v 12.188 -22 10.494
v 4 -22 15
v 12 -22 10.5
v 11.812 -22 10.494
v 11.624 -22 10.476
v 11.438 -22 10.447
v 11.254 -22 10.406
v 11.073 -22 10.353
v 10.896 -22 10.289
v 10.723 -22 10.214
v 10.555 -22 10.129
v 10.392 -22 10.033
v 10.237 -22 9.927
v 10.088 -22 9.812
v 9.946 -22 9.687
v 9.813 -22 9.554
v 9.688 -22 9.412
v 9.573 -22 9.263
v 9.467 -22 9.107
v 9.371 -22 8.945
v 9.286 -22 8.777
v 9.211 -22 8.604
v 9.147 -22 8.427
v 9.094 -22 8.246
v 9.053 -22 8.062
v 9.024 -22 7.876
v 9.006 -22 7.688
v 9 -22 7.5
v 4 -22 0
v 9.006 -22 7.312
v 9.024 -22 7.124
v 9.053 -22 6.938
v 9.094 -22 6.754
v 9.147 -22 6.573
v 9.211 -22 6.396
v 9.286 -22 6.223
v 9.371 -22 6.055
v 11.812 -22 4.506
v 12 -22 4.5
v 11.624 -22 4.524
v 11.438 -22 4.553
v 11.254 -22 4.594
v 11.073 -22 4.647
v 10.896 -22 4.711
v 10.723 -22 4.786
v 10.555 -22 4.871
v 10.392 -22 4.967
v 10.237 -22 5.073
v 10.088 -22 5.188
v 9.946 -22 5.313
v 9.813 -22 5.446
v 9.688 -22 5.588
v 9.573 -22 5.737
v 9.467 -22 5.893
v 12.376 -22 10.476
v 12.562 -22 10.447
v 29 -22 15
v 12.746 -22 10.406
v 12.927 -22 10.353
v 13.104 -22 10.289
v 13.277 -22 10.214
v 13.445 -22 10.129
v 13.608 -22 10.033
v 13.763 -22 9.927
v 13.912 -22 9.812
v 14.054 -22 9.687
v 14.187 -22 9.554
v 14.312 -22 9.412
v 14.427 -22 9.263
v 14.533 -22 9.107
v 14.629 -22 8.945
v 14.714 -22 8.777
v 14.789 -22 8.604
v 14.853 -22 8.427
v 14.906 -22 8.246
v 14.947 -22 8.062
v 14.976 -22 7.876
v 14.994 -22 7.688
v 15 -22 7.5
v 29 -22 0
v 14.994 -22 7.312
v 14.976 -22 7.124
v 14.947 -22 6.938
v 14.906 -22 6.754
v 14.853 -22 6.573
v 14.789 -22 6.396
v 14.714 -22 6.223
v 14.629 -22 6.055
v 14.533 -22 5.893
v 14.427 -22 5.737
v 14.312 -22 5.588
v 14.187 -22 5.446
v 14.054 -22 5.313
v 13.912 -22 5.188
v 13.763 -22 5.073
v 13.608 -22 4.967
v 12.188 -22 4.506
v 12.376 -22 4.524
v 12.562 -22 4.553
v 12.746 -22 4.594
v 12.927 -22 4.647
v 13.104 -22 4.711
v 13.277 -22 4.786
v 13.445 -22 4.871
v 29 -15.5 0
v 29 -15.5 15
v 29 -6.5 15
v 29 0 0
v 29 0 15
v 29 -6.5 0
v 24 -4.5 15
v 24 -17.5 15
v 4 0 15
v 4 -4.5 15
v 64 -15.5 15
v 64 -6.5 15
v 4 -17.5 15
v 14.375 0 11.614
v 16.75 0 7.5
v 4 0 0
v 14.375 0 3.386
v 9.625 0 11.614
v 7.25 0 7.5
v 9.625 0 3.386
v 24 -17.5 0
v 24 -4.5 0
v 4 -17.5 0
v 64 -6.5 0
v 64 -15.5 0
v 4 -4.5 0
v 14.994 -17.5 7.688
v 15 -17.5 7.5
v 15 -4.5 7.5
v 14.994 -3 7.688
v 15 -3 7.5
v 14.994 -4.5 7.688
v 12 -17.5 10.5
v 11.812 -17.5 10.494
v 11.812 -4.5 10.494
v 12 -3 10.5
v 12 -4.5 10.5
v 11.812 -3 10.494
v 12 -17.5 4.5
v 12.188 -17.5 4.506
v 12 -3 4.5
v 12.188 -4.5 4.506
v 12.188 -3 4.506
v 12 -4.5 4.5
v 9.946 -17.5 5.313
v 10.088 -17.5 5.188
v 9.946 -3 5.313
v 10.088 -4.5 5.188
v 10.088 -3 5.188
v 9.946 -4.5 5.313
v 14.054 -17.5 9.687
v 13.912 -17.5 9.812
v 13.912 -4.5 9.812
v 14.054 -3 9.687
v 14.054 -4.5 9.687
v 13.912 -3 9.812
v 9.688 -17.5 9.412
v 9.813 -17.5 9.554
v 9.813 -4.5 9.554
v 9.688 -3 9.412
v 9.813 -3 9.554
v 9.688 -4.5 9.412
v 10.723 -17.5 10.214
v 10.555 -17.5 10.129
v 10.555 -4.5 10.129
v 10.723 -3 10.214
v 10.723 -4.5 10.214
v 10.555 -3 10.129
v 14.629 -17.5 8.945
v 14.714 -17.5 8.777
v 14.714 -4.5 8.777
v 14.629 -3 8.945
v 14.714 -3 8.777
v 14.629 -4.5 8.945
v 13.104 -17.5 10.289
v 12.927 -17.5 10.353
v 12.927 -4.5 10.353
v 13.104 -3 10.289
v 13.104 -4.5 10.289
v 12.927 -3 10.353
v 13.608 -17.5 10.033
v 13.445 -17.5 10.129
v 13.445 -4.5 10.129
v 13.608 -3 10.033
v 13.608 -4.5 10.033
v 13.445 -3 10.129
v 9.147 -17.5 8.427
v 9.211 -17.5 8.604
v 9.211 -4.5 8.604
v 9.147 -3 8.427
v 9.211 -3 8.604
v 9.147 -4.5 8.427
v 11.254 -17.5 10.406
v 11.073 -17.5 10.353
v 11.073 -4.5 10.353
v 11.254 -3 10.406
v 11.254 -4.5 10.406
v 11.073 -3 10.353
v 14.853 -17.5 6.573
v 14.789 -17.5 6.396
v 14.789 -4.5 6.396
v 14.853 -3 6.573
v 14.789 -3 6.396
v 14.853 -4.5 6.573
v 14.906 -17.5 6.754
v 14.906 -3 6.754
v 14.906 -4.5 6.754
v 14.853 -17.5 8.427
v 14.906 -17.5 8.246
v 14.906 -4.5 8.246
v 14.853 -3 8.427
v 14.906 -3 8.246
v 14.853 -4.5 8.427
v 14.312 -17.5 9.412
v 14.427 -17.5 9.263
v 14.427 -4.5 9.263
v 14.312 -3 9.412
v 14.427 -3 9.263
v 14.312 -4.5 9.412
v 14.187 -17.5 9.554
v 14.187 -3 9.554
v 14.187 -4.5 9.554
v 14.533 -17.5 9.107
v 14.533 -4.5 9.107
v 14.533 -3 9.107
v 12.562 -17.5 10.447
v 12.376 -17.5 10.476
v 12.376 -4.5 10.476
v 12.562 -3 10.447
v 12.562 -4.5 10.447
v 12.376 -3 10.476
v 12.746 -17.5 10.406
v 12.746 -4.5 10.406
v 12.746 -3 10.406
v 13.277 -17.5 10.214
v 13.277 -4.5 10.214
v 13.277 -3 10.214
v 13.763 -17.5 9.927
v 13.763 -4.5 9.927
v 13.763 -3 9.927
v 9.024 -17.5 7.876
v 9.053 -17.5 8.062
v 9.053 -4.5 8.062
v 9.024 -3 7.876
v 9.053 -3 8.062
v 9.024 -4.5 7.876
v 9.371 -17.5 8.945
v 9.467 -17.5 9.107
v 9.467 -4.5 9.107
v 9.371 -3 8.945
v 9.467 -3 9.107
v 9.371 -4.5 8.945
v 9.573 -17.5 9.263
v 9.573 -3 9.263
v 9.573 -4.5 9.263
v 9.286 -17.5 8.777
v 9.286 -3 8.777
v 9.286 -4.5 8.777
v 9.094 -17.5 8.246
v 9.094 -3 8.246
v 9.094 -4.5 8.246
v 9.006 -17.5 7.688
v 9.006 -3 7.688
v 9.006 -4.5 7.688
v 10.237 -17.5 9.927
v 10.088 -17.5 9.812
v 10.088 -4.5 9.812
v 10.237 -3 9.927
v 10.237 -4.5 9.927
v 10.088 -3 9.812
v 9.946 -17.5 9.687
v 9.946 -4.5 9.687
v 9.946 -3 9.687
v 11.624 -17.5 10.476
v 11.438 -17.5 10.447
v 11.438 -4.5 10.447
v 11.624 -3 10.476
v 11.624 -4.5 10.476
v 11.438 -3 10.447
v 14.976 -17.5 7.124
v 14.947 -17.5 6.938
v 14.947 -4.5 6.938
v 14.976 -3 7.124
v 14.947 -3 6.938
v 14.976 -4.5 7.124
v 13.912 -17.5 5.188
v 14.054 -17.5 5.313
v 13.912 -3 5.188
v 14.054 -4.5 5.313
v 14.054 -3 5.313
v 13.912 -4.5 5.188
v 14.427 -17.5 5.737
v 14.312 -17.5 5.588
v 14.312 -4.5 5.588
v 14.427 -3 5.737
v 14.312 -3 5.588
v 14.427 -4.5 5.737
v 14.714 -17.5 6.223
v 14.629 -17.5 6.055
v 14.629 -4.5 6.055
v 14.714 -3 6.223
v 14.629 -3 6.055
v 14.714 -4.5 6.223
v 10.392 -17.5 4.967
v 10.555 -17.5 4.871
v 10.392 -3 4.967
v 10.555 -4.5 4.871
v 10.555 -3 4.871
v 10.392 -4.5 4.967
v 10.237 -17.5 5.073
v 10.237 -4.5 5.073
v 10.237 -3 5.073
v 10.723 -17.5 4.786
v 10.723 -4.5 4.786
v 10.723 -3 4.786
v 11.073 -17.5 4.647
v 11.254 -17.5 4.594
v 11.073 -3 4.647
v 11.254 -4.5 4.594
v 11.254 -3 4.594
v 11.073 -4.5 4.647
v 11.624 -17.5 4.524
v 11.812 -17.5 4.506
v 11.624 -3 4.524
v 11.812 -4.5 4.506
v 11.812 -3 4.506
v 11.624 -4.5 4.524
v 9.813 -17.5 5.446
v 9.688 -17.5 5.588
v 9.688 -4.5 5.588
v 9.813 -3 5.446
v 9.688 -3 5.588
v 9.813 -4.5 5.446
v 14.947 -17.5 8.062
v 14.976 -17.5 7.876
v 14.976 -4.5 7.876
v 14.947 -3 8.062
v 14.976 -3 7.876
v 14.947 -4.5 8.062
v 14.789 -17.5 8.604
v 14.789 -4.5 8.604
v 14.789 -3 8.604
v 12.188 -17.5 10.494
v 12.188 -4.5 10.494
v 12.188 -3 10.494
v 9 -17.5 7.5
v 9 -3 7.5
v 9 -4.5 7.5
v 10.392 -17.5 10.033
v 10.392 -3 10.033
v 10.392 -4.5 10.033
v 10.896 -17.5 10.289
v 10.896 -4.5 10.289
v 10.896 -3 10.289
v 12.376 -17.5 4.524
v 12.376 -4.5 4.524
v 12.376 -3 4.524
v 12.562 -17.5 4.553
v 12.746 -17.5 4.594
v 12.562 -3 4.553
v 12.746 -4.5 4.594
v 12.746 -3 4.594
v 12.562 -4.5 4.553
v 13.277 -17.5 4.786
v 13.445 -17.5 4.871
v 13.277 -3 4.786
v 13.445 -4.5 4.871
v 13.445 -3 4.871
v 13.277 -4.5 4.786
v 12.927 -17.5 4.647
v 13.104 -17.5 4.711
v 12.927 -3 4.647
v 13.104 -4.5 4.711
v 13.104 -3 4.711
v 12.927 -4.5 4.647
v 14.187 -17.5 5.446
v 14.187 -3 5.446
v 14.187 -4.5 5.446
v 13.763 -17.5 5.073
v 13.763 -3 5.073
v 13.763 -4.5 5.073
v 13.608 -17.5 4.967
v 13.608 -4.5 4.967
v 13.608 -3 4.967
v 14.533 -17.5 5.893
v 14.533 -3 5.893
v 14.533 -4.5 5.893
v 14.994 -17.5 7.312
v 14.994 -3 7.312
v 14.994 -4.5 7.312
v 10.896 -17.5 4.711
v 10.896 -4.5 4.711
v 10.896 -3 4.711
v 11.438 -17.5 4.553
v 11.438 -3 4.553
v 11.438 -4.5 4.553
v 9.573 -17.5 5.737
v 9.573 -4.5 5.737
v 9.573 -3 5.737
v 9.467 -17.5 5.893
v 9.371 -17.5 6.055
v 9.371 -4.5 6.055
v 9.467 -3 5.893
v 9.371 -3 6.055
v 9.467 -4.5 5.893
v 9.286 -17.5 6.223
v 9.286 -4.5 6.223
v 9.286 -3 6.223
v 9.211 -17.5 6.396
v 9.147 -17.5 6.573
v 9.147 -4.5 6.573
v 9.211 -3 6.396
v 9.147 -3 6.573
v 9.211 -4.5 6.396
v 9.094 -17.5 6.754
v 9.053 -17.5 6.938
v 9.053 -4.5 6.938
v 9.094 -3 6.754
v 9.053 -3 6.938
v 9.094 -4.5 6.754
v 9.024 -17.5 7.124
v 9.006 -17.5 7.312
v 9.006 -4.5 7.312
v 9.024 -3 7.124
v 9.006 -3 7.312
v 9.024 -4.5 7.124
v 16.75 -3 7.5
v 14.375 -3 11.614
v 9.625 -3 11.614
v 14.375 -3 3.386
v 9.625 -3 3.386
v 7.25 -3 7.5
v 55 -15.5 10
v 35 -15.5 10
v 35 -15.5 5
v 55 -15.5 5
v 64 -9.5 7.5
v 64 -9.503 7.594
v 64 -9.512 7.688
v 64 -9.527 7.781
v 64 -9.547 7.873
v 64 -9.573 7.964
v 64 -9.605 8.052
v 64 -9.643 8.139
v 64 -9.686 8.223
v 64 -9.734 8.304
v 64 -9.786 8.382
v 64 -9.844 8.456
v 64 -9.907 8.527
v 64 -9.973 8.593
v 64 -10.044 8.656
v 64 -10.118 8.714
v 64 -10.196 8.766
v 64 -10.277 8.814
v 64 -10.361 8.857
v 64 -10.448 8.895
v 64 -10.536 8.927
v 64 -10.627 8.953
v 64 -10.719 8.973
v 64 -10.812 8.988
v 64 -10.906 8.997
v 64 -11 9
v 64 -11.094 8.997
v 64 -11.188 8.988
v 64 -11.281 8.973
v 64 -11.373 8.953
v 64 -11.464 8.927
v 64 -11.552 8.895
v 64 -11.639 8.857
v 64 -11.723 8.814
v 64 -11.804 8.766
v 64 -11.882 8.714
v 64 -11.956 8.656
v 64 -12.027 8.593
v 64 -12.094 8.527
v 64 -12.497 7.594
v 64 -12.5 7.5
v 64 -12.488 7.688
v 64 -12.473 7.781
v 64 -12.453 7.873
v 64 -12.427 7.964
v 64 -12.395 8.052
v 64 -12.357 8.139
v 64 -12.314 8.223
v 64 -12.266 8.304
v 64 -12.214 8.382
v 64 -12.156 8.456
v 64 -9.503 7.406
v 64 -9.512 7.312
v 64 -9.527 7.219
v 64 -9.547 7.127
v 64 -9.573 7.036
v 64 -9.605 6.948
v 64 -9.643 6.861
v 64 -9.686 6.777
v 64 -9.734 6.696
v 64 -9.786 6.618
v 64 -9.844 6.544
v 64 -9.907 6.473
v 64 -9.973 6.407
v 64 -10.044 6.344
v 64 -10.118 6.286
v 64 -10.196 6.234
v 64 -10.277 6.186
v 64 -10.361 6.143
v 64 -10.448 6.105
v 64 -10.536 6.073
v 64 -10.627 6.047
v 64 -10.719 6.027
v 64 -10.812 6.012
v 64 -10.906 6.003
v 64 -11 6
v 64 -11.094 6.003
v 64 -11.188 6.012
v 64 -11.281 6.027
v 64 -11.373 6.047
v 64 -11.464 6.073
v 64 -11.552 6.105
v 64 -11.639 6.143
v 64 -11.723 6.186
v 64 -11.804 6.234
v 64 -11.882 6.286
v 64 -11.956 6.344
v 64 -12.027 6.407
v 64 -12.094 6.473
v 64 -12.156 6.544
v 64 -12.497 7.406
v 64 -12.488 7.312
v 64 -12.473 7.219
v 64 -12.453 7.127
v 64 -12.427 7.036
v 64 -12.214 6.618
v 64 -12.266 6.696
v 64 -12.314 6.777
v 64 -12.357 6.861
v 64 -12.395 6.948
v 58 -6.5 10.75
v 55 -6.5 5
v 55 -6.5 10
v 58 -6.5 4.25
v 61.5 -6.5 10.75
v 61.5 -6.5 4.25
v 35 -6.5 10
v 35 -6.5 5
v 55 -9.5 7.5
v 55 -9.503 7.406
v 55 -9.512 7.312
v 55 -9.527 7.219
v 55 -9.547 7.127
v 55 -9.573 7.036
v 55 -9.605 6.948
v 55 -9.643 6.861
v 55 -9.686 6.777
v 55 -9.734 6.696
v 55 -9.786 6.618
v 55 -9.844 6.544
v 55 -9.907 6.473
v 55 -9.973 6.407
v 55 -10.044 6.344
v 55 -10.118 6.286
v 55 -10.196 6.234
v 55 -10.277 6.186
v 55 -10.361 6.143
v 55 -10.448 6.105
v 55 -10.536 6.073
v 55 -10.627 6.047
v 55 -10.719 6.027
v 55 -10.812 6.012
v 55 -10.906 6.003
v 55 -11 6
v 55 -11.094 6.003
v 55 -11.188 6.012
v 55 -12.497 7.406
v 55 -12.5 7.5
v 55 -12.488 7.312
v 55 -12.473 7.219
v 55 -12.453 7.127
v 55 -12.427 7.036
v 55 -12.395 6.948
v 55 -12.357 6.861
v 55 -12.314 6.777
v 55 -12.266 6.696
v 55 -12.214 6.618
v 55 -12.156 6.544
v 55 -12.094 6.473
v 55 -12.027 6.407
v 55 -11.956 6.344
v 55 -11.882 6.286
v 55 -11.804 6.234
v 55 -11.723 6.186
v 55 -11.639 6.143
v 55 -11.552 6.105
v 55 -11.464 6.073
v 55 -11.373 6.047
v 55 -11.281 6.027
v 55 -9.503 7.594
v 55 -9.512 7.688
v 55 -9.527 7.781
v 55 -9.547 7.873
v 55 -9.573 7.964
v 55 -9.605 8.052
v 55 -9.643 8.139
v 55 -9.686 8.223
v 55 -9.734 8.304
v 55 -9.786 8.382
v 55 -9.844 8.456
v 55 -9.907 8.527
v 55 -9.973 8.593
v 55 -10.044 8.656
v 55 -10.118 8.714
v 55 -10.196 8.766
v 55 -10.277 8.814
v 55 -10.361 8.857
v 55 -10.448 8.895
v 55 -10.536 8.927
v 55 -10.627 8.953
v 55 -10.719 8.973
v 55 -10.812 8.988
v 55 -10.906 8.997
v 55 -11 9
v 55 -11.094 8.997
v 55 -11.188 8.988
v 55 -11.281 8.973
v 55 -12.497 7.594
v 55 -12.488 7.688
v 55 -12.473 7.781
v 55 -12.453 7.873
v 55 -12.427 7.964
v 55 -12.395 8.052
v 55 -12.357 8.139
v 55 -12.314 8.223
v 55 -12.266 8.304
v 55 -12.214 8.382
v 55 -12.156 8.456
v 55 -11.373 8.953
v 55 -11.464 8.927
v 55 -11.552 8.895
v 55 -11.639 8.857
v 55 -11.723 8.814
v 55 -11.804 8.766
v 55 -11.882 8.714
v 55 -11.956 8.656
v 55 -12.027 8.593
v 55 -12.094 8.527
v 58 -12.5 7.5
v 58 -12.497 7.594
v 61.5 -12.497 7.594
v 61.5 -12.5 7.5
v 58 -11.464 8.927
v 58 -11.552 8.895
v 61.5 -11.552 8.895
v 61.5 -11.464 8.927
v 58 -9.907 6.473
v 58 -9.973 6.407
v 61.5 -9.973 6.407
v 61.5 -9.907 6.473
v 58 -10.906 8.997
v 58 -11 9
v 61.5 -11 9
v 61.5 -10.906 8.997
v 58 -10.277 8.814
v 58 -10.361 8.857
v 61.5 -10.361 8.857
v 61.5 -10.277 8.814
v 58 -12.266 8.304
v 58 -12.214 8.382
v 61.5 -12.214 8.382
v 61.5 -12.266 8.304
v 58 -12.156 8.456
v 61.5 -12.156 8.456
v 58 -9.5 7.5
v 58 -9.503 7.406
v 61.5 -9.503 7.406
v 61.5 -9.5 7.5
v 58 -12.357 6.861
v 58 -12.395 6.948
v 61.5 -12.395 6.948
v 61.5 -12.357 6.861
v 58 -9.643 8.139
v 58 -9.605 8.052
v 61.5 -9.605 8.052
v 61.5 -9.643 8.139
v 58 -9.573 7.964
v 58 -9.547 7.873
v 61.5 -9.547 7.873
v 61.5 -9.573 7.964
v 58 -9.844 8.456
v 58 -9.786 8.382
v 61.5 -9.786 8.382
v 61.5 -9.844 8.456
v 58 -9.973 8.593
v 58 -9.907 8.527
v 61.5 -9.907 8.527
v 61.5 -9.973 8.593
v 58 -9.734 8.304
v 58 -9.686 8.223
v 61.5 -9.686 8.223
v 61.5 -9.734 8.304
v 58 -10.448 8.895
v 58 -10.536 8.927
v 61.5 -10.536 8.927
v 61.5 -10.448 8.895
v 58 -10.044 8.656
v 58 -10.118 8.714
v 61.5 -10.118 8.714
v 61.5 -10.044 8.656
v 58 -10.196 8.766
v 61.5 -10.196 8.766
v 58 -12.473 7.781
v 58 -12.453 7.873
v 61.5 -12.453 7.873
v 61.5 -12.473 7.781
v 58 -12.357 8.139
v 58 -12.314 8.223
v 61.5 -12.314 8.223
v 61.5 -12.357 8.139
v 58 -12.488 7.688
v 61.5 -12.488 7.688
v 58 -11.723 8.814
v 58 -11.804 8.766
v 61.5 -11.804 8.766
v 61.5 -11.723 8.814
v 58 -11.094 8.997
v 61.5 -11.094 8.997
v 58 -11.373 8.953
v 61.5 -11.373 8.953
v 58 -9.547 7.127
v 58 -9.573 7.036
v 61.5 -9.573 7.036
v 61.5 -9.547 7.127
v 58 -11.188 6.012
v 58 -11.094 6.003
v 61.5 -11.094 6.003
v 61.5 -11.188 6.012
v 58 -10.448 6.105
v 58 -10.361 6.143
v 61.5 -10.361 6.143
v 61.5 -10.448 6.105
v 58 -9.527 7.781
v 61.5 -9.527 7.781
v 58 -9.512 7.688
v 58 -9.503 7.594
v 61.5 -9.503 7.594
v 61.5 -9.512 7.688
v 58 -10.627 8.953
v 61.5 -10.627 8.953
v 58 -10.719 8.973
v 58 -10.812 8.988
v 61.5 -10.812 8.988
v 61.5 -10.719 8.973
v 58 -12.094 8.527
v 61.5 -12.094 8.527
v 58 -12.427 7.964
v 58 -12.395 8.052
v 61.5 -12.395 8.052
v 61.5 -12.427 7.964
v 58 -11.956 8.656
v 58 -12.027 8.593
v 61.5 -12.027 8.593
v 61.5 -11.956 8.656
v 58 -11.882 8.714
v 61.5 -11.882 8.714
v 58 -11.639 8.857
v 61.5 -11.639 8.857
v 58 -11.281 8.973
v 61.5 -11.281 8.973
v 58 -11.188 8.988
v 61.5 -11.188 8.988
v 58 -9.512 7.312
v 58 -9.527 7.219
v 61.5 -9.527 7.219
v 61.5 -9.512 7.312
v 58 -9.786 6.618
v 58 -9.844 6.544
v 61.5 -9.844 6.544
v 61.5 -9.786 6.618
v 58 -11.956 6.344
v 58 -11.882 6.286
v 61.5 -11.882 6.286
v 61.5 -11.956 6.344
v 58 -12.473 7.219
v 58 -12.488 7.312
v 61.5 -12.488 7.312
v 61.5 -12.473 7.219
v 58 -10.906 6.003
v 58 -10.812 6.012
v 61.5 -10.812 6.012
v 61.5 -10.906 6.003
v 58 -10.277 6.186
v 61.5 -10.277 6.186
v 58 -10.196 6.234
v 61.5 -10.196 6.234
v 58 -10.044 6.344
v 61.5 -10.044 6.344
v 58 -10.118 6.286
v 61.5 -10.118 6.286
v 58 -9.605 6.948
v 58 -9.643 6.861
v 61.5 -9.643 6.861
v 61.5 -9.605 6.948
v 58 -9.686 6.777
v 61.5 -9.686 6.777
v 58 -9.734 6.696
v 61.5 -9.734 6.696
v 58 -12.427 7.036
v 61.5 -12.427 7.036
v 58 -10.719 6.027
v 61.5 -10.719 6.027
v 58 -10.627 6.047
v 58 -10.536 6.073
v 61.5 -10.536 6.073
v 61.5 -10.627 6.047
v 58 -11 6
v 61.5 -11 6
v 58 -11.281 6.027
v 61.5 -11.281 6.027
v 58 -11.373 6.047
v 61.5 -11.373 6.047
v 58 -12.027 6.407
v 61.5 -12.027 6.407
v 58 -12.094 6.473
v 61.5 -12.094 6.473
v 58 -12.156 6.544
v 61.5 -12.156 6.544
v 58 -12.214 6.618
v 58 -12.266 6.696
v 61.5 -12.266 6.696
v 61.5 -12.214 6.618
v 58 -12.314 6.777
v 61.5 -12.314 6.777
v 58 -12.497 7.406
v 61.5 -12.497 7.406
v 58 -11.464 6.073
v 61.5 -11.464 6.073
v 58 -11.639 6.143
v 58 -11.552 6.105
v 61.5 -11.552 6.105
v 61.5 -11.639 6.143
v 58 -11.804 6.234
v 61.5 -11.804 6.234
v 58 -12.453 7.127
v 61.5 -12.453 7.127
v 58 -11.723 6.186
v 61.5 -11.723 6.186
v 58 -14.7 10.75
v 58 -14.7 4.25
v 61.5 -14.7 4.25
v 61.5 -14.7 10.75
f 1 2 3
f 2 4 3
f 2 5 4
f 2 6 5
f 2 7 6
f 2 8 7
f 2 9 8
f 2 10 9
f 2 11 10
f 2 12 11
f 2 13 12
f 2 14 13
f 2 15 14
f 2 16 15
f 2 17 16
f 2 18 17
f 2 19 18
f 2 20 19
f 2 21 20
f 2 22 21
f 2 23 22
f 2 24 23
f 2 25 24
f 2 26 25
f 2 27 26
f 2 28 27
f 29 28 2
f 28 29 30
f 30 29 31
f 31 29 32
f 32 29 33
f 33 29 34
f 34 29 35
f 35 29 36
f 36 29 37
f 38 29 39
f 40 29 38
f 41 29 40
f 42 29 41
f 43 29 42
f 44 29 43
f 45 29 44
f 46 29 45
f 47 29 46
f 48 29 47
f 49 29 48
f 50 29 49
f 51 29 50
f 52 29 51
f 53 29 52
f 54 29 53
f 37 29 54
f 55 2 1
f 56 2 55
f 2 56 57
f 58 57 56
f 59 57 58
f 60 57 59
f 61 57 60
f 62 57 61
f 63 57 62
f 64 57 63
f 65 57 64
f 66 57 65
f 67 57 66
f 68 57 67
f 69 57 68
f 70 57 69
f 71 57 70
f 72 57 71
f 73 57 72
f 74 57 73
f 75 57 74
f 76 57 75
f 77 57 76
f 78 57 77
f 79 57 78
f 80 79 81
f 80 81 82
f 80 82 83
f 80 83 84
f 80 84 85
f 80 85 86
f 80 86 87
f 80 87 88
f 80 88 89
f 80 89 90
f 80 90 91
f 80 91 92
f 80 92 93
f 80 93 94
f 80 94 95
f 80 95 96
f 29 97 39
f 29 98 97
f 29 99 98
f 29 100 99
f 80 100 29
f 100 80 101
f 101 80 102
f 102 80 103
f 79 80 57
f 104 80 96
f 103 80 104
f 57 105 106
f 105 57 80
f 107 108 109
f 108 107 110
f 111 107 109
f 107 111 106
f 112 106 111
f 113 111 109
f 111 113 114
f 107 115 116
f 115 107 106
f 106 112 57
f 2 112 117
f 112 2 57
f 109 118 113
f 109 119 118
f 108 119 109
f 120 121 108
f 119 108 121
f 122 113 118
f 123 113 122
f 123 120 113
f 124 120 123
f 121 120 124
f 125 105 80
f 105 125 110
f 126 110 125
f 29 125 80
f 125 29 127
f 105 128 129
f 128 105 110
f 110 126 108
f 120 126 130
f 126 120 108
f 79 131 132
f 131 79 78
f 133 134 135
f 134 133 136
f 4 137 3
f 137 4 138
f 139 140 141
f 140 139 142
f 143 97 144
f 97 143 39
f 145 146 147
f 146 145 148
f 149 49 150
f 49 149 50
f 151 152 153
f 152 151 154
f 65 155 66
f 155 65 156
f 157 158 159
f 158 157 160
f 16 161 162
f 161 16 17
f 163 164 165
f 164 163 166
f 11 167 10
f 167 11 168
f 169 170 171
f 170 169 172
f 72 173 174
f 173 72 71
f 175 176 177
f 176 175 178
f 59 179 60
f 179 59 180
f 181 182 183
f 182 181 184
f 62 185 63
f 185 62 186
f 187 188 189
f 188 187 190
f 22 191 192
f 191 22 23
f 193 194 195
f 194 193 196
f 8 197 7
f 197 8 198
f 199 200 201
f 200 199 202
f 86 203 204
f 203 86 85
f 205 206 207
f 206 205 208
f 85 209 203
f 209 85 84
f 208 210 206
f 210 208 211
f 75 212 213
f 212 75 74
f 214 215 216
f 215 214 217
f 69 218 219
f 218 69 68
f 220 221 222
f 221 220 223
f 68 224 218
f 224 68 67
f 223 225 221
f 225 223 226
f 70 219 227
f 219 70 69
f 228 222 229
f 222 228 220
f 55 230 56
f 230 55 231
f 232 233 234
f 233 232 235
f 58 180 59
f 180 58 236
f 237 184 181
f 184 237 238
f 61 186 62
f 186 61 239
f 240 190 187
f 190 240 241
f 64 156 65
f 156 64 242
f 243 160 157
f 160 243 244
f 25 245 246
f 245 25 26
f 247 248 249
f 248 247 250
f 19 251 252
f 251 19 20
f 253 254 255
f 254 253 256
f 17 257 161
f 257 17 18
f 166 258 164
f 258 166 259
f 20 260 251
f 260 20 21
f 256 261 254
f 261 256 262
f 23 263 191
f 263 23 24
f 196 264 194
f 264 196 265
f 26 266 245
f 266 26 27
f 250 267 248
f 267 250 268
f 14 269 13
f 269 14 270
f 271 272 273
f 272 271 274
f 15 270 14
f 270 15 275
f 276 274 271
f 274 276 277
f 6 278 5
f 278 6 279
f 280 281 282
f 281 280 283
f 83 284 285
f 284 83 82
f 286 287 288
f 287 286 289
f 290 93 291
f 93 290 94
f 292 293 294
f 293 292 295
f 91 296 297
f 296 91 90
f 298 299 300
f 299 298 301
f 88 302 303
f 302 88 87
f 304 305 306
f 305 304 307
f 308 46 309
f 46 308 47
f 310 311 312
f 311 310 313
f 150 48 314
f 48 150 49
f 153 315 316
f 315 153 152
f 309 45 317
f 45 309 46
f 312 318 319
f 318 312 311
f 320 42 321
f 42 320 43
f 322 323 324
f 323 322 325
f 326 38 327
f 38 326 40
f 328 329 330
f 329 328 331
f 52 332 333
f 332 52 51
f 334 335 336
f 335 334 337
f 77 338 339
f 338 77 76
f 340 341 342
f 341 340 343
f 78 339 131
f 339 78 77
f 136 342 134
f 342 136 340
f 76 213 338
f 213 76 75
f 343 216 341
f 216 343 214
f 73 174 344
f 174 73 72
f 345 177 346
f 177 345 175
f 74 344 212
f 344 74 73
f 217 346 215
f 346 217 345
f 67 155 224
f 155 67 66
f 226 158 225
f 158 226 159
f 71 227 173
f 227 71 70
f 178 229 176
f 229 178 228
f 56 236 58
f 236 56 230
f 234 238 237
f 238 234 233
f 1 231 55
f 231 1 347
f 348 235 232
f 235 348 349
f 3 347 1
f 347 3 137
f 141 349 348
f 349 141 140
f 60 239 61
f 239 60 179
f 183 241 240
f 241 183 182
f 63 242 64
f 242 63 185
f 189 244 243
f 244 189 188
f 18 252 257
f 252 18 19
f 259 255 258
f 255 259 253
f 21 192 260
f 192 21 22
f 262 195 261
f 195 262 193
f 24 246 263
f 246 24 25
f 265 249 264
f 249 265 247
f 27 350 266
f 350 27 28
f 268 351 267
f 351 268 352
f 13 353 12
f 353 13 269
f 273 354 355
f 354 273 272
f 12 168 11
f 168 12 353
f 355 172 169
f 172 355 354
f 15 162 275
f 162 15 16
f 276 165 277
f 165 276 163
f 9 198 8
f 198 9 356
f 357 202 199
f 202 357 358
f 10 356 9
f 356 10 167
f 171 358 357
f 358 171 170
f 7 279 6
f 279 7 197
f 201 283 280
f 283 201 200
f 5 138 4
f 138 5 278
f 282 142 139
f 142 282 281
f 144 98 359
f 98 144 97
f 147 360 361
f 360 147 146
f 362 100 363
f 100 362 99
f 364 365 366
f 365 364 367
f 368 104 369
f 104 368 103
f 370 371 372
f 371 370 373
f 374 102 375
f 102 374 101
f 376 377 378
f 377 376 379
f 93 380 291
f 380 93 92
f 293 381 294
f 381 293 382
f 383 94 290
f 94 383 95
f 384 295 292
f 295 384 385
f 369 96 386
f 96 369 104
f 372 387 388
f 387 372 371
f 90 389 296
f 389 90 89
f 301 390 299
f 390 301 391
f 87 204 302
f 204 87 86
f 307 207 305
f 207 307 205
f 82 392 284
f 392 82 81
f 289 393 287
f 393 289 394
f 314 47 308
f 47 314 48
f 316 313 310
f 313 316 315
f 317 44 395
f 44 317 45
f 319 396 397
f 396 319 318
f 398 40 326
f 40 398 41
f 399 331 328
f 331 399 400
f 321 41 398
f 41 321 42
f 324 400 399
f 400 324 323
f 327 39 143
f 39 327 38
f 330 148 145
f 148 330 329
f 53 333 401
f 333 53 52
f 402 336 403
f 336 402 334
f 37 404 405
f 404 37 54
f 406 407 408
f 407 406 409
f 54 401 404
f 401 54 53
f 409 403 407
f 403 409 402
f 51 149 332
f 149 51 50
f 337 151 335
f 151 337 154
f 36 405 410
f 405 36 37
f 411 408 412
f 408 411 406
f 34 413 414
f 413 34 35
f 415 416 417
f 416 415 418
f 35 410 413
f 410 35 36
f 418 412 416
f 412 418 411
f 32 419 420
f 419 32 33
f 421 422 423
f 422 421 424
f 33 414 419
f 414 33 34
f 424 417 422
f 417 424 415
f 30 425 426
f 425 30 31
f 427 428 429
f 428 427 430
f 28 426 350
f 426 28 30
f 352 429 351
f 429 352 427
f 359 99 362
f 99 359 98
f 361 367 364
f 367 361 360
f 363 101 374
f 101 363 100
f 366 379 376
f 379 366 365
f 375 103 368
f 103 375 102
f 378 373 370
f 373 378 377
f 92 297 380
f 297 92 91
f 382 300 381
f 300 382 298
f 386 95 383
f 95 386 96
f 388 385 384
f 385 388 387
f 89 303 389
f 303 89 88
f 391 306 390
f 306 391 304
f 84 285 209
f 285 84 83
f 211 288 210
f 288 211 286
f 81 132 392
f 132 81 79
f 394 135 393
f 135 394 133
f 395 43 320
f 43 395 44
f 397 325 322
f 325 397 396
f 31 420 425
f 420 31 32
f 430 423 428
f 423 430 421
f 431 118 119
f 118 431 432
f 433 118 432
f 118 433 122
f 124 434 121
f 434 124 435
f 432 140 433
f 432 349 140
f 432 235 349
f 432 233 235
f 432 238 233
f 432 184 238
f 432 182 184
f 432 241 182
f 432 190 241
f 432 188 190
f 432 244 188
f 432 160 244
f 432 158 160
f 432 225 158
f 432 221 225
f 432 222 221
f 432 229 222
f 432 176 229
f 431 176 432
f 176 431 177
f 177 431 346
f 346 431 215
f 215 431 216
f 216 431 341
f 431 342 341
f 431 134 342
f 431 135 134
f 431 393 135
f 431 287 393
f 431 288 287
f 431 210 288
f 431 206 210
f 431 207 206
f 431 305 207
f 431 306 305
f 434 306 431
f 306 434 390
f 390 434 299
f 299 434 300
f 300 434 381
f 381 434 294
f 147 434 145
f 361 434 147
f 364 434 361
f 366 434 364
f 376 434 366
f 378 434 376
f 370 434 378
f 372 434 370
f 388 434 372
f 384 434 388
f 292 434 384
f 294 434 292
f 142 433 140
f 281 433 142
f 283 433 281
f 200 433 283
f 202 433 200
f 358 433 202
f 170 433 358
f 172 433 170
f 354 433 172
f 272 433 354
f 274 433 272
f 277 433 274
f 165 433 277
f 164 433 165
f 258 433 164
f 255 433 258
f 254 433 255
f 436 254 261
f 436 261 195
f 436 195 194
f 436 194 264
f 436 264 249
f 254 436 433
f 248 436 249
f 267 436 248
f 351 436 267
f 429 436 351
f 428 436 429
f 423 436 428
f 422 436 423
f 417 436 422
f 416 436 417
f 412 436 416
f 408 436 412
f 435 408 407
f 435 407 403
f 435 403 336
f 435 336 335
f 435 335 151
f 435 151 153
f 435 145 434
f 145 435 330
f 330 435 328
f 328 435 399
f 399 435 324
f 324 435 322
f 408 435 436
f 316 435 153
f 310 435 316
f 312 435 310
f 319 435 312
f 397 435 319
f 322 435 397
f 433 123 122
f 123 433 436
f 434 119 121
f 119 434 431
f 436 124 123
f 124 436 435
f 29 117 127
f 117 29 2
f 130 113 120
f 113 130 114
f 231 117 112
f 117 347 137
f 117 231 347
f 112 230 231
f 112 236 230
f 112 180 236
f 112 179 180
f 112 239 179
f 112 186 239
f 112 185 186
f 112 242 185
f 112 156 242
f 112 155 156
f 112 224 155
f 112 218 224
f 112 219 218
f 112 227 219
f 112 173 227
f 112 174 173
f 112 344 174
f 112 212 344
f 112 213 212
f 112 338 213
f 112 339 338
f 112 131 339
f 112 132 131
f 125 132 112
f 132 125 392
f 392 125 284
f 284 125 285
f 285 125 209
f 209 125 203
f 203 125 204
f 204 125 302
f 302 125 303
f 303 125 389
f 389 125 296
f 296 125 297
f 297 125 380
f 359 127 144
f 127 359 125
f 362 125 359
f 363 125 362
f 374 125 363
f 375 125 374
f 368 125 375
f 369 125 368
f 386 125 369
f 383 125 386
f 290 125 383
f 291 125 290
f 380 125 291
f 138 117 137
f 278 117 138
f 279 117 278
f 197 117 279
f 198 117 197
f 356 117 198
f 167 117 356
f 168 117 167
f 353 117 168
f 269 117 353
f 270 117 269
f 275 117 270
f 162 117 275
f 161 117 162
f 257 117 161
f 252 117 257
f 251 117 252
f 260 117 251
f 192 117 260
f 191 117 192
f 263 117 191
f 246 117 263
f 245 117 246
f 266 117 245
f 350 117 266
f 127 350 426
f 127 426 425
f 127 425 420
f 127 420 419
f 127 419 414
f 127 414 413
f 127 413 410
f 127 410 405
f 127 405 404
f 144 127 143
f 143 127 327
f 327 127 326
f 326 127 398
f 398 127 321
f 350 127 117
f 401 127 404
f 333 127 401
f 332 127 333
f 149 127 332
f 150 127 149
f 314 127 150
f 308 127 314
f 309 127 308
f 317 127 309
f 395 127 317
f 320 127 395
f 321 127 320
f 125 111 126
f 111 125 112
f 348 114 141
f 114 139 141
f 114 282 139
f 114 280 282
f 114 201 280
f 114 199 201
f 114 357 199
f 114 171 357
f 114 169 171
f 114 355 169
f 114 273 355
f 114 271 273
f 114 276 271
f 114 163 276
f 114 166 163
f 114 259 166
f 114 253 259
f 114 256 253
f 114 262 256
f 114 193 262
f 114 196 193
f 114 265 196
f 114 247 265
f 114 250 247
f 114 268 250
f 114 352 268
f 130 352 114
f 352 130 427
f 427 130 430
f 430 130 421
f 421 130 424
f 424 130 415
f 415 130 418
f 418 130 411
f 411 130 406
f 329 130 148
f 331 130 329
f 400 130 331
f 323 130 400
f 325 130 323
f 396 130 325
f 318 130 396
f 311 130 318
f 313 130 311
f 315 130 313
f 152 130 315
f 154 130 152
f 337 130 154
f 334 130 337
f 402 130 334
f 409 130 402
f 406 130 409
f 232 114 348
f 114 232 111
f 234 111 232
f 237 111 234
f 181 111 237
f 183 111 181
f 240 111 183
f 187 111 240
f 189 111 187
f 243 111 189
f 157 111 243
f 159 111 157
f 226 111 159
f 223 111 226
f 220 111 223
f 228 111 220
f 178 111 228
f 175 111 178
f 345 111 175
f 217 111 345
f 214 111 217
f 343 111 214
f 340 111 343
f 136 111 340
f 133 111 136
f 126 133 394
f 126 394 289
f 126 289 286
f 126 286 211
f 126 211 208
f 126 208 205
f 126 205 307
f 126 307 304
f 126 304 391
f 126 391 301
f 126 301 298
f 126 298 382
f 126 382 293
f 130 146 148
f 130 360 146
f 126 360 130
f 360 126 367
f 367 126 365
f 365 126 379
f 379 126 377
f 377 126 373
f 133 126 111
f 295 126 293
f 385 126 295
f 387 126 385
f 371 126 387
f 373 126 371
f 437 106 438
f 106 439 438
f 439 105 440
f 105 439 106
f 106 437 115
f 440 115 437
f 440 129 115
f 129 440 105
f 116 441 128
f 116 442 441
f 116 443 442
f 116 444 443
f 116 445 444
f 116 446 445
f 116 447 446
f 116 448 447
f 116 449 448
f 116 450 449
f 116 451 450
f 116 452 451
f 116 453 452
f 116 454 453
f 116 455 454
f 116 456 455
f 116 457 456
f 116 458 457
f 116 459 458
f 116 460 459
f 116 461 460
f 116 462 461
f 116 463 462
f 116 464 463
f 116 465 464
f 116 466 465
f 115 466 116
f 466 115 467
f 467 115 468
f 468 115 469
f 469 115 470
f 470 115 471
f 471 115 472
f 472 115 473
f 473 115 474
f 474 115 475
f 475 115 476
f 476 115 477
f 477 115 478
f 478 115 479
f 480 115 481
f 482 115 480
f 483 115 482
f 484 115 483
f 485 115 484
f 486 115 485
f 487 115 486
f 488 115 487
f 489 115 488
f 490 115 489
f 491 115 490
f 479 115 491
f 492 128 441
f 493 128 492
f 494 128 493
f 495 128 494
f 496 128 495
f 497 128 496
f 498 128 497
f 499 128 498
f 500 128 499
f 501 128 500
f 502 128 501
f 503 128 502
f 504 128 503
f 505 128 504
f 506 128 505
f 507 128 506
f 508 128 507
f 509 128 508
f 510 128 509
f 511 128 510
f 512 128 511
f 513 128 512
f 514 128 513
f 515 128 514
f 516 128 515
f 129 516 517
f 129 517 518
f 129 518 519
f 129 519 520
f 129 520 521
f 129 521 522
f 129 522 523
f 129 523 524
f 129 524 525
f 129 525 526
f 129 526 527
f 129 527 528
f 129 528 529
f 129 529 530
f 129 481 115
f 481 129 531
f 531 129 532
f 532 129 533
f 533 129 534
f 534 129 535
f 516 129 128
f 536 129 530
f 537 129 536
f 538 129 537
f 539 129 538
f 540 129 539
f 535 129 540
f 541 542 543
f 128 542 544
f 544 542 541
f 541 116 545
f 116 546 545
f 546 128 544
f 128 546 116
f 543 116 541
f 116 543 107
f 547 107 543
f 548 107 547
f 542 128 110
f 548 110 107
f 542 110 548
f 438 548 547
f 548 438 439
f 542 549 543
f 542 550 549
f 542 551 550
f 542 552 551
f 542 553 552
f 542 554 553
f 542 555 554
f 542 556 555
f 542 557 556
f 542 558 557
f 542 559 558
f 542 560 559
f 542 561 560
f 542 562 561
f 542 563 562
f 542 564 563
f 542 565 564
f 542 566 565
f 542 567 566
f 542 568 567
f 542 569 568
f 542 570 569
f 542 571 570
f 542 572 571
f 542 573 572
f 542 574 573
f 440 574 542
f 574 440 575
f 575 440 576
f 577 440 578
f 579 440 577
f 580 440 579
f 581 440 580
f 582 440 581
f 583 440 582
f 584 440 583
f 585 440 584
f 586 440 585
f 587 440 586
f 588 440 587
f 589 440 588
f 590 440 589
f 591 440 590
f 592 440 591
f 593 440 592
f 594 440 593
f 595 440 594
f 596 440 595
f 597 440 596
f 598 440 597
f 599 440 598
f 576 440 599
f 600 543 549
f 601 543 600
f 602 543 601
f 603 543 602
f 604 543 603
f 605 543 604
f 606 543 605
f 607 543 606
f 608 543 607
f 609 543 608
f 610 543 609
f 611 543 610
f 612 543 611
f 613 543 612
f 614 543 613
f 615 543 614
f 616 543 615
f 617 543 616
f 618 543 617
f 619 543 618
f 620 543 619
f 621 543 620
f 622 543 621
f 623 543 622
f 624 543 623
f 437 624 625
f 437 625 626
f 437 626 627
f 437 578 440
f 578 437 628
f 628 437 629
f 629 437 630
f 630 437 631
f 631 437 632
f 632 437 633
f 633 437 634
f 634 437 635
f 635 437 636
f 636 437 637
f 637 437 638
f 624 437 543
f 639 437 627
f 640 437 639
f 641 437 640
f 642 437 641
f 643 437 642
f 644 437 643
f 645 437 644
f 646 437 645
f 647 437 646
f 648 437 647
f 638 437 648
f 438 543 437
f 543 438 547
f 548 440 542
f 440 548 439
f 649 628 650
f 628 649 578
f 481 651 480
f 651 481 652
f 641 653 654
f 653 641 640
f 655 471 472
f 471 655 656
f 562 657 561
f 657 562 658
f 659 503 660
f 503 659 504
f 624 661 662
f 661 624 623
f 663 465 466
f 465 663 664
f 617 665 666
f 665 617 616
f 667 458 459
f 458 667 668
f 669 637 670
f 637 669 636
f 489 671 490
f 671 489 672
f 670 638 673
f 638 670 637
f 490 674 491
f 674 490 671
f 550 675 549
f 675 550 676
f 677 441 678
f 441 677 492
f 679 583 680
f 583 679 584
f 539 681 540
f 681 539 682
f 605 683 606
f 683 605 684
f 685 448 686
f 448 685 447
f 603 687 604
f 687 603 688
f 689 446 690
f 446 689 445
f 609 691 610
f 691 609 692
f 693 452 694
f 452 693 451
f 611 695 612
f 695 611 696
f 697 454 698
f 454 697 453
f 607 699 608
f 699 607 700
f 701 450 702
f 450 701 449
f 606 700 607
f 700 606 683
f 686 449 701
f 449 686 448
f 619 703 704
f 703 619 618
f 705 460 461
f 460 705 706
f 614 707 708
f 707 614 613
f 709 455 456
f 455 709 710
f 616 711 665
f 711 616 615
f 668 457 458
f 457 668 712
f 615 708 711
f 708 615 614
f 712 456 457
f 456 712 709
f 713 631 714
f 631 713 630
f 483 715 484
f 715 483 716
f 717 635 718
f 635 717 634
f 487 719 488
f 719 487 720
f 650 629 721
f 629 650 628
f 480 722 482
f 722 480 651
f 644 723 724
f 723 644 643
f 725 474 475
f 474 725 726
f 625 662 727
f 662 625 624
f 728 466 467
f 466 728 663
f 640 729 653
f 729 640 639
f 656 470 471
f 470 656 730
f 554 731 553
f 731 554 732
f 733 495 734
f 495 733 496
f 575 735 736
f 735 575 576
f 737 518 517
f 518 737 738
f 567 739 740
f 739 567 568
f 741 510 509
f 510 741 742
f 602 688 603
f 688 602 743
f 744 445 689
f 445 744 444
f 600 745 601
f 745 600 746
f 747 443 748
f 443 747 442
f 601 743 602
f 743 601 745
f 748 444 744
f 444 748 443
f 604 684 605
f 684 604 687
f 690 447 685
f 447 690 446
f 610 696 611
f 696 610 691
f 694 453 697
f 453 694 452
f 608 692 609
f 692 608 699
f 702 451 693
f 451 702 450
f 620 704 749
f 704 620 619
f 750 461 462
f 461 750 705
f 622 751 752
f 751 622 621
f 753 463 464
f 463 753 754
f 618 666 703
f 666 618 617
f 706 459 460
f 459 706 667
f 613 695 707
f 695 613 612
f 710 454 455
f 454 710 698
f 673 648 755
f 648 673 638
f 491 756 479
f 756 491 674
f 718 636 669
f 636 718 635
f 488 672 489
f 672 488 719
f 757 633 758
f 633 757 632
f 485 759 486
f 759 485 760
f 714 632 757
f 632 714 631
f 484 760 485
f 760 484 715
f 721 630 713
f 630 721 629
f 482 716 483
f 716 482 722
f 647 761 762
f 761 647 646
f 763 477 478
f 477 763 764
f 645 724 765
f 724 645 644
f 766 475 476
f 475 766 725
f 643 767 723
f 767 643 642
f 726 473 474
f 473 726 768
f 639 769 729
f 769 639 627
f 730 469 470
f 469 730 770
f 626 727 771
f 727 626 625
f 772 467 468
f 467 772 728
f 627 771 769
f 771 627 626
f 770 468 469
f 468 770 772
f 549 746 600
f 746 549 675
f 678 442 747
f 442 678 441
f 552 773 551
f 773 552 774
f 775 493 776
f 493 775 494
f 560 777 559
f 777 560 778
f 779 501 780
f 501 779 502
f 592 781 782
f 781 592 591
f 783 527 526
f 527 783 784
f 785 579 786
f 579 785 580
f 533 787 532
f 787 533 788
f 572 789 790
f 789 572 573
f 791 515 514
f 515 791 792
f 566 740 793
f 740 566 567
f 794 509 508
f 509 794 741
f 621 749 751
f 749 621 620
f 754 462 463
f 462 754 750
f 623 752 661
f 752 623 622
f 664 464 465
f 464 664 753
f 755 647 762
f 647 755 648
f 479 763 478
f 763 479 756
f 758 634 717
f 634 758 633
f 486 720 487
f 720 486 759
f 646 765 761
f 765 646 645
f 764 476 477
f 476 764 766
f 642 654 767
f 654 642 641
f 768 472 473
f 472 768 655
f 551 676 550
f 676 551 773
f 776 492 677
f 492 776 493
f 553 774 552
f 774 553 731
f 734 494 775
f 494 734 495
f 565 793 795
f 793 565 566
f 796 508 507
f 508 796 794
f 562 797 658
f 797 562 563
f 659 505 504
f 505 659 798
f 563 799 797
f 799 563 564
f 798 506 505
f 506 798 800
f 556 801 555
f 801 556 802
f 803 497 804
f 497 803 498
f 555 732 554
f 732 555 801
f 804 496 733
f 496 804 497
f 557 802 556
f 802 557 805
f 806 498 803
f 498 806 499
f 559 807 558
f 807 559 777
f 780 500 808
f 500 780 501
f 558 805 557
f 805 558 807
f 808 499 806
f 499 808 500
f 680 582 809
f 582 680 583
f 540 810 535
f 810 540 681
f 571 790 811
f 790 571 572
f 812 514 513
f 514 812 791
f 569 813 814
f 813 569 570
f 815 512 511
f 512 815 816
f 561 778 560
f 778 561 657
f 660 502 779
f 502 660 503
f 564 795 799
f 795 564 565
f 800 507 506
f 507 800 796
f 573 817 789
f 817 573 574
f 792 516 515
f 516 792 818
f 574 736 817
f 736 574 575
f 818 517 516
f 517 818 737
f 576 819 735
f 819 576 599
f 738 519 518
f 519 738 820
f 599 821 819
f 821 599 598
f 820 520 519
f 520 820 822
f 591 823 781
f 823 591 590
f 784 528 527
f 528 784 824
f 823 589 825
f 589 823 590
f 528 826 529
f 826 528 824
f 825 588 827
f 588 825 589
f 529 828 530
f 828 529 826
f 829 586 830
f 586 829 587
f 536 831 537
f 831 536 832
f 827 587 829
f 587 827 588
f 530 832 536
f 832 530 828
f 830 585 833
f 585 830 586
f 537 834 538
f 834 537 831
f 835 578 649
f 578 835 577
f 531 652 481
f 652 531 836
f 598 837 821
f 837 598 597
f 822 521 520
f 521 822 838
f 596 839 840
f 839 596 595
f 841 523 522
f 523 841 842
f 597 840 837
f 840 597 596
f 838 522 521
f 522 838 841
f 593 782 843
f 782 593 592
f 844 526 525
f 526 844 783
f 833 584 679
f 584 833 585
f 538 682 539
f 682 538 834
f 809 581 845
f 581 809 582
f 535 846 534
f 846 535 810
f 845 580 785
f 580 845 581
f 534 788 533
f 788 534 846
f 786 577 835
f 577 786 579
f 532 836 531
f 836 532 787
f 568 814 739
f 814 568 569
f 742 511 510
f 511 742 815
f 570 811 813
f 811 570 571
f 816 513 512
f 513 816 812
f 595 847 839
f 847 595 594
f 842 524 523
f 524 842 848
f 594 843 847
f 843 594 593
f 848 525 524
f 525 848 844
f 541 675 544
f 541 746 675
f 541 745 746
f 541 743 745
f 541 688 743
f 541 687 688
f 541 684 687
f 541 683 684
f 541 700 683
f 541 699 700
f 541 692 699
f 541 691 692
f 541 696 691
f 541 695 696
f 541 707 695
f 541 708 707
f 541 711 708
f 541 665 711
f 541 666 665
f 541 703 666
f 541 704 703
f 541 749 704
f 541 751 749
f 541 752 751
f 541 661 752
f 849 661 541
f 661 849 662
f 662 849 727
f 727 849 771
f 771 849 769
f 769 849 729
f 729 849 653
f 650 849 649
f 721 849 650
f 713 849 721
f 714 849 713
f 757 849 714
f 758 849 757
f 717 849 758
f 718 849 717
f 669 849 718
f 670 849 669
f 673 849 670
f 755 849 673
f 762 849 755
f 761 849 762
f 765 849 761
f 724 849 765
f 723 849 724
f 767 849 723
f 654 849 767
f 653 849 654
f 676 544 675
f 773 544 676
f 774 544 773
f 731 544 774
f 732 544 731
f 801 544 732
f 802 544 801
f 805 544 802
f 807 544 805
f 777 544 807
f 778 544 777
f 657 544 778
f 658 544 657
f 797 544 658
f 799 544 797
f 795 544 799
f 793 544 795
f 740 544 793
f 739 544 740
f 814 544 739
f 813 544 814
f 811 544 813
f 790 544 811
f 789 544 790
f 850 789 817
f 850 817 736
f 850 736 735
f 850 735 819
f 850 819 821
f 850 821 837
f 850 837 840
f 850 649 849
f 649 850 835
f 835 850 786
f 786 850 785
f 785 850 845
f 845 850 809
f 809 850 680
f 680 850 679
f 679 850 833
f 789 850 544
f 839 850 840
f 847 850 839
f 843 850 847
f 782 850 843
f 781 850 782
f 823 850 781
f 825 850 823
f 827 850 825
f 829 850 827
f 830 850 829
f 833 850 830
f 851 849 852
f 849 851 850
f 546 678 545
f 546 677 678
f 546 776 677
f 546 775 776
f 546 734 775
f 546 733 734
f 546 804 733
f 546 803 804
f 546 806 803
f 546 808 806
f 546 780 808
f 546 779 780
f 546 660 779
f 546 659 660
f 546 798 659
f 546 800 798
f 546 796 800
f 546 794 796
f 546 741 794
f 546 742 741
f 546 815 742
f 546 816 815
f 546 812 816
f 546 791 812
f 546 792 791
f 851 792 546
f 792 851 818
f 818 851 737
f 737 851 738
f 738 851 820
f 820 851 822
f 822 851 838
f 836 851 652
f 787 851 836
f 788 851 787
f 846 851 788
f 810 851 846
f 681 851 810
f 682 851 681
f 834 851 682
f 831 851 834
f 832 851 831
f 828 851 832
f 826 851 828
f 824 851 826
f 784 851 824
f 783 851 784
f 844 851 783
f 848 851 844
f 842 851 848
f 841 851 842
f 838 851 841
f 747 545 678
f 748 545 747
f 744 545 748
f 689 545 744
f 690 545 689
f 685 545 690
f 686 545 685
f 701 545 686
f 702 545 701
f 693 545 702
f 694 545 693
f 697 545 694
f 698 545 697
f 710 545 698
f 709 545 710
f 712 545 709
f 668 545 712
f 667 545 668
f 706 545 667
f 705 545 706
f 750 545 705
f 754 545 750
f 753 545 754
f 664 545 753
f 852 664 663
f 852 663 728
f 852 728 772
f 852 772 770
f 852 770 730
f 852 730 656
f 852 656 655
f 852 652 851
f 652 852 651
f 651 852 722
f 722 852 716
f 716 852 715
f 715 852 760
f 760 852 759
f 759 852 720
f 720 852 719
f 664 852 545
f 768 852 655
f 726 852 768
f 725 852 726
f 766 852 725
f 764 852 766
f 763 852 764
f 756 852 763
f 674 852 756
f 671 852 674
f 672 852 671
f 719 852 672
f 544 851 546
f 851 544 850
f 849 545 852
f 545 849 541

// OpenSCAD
bearing_screw_dia = 6; //5mm screw, oversized
bearing_width = 15;
bearing_length = 29;
bearing_height = 22;
bearing_opening = 13;
bearing_insert = 25;
slide_length = 35;
slit_dia = 5;
slit_offset = 35;
slit_length=20;
nut_thick = 3.5;
nut_width = 6.5;
nut_insert = 16;
nut_offset = 58;

slide_width = 9;


rotate([90,0,0]) {
difference(){
difference() {
    cube(size=[bearing_length,bearing_width,bearing_height]);
    translate([12,bearing_width/2,-1]){
        cylinder(h=24,d=bearing_screw_dia,center=false,$fn=100);
    }
    translate([12,bearing_width/2,-1]){   
       cylinder(h=4,d=9.5,$fn=6); 
    }

    translate([-1,-1,-1]){
        cube(size=[5,bearing_height,25]);
    }
}
translate([-1,-1,4.5])
    cube(size=[bearing_insert,bearing_height,bearing_opening]);
}

difference(){
translate([bearing_length,0,(bearing_height-slide_width)/2])
    cube(size=[slide_length,bearing_width,slide_width]);

translate([slit_offset,(bearing_width/2)-(slit_dia/2),0])
    cube(size=[slit_length,slit_dia,22]);

translate([30+25,bearing_width/2,11]) rotate([0,90,0])
    cylinder(h=10,d=3,$fn=100,center=false);
    
//nut opening
translate([nut_offset,(bearing_width/2)-(nut_width/2),-1.3])
    cube(size=[nut_thick,nut_width,nut_insert]);
}
}
